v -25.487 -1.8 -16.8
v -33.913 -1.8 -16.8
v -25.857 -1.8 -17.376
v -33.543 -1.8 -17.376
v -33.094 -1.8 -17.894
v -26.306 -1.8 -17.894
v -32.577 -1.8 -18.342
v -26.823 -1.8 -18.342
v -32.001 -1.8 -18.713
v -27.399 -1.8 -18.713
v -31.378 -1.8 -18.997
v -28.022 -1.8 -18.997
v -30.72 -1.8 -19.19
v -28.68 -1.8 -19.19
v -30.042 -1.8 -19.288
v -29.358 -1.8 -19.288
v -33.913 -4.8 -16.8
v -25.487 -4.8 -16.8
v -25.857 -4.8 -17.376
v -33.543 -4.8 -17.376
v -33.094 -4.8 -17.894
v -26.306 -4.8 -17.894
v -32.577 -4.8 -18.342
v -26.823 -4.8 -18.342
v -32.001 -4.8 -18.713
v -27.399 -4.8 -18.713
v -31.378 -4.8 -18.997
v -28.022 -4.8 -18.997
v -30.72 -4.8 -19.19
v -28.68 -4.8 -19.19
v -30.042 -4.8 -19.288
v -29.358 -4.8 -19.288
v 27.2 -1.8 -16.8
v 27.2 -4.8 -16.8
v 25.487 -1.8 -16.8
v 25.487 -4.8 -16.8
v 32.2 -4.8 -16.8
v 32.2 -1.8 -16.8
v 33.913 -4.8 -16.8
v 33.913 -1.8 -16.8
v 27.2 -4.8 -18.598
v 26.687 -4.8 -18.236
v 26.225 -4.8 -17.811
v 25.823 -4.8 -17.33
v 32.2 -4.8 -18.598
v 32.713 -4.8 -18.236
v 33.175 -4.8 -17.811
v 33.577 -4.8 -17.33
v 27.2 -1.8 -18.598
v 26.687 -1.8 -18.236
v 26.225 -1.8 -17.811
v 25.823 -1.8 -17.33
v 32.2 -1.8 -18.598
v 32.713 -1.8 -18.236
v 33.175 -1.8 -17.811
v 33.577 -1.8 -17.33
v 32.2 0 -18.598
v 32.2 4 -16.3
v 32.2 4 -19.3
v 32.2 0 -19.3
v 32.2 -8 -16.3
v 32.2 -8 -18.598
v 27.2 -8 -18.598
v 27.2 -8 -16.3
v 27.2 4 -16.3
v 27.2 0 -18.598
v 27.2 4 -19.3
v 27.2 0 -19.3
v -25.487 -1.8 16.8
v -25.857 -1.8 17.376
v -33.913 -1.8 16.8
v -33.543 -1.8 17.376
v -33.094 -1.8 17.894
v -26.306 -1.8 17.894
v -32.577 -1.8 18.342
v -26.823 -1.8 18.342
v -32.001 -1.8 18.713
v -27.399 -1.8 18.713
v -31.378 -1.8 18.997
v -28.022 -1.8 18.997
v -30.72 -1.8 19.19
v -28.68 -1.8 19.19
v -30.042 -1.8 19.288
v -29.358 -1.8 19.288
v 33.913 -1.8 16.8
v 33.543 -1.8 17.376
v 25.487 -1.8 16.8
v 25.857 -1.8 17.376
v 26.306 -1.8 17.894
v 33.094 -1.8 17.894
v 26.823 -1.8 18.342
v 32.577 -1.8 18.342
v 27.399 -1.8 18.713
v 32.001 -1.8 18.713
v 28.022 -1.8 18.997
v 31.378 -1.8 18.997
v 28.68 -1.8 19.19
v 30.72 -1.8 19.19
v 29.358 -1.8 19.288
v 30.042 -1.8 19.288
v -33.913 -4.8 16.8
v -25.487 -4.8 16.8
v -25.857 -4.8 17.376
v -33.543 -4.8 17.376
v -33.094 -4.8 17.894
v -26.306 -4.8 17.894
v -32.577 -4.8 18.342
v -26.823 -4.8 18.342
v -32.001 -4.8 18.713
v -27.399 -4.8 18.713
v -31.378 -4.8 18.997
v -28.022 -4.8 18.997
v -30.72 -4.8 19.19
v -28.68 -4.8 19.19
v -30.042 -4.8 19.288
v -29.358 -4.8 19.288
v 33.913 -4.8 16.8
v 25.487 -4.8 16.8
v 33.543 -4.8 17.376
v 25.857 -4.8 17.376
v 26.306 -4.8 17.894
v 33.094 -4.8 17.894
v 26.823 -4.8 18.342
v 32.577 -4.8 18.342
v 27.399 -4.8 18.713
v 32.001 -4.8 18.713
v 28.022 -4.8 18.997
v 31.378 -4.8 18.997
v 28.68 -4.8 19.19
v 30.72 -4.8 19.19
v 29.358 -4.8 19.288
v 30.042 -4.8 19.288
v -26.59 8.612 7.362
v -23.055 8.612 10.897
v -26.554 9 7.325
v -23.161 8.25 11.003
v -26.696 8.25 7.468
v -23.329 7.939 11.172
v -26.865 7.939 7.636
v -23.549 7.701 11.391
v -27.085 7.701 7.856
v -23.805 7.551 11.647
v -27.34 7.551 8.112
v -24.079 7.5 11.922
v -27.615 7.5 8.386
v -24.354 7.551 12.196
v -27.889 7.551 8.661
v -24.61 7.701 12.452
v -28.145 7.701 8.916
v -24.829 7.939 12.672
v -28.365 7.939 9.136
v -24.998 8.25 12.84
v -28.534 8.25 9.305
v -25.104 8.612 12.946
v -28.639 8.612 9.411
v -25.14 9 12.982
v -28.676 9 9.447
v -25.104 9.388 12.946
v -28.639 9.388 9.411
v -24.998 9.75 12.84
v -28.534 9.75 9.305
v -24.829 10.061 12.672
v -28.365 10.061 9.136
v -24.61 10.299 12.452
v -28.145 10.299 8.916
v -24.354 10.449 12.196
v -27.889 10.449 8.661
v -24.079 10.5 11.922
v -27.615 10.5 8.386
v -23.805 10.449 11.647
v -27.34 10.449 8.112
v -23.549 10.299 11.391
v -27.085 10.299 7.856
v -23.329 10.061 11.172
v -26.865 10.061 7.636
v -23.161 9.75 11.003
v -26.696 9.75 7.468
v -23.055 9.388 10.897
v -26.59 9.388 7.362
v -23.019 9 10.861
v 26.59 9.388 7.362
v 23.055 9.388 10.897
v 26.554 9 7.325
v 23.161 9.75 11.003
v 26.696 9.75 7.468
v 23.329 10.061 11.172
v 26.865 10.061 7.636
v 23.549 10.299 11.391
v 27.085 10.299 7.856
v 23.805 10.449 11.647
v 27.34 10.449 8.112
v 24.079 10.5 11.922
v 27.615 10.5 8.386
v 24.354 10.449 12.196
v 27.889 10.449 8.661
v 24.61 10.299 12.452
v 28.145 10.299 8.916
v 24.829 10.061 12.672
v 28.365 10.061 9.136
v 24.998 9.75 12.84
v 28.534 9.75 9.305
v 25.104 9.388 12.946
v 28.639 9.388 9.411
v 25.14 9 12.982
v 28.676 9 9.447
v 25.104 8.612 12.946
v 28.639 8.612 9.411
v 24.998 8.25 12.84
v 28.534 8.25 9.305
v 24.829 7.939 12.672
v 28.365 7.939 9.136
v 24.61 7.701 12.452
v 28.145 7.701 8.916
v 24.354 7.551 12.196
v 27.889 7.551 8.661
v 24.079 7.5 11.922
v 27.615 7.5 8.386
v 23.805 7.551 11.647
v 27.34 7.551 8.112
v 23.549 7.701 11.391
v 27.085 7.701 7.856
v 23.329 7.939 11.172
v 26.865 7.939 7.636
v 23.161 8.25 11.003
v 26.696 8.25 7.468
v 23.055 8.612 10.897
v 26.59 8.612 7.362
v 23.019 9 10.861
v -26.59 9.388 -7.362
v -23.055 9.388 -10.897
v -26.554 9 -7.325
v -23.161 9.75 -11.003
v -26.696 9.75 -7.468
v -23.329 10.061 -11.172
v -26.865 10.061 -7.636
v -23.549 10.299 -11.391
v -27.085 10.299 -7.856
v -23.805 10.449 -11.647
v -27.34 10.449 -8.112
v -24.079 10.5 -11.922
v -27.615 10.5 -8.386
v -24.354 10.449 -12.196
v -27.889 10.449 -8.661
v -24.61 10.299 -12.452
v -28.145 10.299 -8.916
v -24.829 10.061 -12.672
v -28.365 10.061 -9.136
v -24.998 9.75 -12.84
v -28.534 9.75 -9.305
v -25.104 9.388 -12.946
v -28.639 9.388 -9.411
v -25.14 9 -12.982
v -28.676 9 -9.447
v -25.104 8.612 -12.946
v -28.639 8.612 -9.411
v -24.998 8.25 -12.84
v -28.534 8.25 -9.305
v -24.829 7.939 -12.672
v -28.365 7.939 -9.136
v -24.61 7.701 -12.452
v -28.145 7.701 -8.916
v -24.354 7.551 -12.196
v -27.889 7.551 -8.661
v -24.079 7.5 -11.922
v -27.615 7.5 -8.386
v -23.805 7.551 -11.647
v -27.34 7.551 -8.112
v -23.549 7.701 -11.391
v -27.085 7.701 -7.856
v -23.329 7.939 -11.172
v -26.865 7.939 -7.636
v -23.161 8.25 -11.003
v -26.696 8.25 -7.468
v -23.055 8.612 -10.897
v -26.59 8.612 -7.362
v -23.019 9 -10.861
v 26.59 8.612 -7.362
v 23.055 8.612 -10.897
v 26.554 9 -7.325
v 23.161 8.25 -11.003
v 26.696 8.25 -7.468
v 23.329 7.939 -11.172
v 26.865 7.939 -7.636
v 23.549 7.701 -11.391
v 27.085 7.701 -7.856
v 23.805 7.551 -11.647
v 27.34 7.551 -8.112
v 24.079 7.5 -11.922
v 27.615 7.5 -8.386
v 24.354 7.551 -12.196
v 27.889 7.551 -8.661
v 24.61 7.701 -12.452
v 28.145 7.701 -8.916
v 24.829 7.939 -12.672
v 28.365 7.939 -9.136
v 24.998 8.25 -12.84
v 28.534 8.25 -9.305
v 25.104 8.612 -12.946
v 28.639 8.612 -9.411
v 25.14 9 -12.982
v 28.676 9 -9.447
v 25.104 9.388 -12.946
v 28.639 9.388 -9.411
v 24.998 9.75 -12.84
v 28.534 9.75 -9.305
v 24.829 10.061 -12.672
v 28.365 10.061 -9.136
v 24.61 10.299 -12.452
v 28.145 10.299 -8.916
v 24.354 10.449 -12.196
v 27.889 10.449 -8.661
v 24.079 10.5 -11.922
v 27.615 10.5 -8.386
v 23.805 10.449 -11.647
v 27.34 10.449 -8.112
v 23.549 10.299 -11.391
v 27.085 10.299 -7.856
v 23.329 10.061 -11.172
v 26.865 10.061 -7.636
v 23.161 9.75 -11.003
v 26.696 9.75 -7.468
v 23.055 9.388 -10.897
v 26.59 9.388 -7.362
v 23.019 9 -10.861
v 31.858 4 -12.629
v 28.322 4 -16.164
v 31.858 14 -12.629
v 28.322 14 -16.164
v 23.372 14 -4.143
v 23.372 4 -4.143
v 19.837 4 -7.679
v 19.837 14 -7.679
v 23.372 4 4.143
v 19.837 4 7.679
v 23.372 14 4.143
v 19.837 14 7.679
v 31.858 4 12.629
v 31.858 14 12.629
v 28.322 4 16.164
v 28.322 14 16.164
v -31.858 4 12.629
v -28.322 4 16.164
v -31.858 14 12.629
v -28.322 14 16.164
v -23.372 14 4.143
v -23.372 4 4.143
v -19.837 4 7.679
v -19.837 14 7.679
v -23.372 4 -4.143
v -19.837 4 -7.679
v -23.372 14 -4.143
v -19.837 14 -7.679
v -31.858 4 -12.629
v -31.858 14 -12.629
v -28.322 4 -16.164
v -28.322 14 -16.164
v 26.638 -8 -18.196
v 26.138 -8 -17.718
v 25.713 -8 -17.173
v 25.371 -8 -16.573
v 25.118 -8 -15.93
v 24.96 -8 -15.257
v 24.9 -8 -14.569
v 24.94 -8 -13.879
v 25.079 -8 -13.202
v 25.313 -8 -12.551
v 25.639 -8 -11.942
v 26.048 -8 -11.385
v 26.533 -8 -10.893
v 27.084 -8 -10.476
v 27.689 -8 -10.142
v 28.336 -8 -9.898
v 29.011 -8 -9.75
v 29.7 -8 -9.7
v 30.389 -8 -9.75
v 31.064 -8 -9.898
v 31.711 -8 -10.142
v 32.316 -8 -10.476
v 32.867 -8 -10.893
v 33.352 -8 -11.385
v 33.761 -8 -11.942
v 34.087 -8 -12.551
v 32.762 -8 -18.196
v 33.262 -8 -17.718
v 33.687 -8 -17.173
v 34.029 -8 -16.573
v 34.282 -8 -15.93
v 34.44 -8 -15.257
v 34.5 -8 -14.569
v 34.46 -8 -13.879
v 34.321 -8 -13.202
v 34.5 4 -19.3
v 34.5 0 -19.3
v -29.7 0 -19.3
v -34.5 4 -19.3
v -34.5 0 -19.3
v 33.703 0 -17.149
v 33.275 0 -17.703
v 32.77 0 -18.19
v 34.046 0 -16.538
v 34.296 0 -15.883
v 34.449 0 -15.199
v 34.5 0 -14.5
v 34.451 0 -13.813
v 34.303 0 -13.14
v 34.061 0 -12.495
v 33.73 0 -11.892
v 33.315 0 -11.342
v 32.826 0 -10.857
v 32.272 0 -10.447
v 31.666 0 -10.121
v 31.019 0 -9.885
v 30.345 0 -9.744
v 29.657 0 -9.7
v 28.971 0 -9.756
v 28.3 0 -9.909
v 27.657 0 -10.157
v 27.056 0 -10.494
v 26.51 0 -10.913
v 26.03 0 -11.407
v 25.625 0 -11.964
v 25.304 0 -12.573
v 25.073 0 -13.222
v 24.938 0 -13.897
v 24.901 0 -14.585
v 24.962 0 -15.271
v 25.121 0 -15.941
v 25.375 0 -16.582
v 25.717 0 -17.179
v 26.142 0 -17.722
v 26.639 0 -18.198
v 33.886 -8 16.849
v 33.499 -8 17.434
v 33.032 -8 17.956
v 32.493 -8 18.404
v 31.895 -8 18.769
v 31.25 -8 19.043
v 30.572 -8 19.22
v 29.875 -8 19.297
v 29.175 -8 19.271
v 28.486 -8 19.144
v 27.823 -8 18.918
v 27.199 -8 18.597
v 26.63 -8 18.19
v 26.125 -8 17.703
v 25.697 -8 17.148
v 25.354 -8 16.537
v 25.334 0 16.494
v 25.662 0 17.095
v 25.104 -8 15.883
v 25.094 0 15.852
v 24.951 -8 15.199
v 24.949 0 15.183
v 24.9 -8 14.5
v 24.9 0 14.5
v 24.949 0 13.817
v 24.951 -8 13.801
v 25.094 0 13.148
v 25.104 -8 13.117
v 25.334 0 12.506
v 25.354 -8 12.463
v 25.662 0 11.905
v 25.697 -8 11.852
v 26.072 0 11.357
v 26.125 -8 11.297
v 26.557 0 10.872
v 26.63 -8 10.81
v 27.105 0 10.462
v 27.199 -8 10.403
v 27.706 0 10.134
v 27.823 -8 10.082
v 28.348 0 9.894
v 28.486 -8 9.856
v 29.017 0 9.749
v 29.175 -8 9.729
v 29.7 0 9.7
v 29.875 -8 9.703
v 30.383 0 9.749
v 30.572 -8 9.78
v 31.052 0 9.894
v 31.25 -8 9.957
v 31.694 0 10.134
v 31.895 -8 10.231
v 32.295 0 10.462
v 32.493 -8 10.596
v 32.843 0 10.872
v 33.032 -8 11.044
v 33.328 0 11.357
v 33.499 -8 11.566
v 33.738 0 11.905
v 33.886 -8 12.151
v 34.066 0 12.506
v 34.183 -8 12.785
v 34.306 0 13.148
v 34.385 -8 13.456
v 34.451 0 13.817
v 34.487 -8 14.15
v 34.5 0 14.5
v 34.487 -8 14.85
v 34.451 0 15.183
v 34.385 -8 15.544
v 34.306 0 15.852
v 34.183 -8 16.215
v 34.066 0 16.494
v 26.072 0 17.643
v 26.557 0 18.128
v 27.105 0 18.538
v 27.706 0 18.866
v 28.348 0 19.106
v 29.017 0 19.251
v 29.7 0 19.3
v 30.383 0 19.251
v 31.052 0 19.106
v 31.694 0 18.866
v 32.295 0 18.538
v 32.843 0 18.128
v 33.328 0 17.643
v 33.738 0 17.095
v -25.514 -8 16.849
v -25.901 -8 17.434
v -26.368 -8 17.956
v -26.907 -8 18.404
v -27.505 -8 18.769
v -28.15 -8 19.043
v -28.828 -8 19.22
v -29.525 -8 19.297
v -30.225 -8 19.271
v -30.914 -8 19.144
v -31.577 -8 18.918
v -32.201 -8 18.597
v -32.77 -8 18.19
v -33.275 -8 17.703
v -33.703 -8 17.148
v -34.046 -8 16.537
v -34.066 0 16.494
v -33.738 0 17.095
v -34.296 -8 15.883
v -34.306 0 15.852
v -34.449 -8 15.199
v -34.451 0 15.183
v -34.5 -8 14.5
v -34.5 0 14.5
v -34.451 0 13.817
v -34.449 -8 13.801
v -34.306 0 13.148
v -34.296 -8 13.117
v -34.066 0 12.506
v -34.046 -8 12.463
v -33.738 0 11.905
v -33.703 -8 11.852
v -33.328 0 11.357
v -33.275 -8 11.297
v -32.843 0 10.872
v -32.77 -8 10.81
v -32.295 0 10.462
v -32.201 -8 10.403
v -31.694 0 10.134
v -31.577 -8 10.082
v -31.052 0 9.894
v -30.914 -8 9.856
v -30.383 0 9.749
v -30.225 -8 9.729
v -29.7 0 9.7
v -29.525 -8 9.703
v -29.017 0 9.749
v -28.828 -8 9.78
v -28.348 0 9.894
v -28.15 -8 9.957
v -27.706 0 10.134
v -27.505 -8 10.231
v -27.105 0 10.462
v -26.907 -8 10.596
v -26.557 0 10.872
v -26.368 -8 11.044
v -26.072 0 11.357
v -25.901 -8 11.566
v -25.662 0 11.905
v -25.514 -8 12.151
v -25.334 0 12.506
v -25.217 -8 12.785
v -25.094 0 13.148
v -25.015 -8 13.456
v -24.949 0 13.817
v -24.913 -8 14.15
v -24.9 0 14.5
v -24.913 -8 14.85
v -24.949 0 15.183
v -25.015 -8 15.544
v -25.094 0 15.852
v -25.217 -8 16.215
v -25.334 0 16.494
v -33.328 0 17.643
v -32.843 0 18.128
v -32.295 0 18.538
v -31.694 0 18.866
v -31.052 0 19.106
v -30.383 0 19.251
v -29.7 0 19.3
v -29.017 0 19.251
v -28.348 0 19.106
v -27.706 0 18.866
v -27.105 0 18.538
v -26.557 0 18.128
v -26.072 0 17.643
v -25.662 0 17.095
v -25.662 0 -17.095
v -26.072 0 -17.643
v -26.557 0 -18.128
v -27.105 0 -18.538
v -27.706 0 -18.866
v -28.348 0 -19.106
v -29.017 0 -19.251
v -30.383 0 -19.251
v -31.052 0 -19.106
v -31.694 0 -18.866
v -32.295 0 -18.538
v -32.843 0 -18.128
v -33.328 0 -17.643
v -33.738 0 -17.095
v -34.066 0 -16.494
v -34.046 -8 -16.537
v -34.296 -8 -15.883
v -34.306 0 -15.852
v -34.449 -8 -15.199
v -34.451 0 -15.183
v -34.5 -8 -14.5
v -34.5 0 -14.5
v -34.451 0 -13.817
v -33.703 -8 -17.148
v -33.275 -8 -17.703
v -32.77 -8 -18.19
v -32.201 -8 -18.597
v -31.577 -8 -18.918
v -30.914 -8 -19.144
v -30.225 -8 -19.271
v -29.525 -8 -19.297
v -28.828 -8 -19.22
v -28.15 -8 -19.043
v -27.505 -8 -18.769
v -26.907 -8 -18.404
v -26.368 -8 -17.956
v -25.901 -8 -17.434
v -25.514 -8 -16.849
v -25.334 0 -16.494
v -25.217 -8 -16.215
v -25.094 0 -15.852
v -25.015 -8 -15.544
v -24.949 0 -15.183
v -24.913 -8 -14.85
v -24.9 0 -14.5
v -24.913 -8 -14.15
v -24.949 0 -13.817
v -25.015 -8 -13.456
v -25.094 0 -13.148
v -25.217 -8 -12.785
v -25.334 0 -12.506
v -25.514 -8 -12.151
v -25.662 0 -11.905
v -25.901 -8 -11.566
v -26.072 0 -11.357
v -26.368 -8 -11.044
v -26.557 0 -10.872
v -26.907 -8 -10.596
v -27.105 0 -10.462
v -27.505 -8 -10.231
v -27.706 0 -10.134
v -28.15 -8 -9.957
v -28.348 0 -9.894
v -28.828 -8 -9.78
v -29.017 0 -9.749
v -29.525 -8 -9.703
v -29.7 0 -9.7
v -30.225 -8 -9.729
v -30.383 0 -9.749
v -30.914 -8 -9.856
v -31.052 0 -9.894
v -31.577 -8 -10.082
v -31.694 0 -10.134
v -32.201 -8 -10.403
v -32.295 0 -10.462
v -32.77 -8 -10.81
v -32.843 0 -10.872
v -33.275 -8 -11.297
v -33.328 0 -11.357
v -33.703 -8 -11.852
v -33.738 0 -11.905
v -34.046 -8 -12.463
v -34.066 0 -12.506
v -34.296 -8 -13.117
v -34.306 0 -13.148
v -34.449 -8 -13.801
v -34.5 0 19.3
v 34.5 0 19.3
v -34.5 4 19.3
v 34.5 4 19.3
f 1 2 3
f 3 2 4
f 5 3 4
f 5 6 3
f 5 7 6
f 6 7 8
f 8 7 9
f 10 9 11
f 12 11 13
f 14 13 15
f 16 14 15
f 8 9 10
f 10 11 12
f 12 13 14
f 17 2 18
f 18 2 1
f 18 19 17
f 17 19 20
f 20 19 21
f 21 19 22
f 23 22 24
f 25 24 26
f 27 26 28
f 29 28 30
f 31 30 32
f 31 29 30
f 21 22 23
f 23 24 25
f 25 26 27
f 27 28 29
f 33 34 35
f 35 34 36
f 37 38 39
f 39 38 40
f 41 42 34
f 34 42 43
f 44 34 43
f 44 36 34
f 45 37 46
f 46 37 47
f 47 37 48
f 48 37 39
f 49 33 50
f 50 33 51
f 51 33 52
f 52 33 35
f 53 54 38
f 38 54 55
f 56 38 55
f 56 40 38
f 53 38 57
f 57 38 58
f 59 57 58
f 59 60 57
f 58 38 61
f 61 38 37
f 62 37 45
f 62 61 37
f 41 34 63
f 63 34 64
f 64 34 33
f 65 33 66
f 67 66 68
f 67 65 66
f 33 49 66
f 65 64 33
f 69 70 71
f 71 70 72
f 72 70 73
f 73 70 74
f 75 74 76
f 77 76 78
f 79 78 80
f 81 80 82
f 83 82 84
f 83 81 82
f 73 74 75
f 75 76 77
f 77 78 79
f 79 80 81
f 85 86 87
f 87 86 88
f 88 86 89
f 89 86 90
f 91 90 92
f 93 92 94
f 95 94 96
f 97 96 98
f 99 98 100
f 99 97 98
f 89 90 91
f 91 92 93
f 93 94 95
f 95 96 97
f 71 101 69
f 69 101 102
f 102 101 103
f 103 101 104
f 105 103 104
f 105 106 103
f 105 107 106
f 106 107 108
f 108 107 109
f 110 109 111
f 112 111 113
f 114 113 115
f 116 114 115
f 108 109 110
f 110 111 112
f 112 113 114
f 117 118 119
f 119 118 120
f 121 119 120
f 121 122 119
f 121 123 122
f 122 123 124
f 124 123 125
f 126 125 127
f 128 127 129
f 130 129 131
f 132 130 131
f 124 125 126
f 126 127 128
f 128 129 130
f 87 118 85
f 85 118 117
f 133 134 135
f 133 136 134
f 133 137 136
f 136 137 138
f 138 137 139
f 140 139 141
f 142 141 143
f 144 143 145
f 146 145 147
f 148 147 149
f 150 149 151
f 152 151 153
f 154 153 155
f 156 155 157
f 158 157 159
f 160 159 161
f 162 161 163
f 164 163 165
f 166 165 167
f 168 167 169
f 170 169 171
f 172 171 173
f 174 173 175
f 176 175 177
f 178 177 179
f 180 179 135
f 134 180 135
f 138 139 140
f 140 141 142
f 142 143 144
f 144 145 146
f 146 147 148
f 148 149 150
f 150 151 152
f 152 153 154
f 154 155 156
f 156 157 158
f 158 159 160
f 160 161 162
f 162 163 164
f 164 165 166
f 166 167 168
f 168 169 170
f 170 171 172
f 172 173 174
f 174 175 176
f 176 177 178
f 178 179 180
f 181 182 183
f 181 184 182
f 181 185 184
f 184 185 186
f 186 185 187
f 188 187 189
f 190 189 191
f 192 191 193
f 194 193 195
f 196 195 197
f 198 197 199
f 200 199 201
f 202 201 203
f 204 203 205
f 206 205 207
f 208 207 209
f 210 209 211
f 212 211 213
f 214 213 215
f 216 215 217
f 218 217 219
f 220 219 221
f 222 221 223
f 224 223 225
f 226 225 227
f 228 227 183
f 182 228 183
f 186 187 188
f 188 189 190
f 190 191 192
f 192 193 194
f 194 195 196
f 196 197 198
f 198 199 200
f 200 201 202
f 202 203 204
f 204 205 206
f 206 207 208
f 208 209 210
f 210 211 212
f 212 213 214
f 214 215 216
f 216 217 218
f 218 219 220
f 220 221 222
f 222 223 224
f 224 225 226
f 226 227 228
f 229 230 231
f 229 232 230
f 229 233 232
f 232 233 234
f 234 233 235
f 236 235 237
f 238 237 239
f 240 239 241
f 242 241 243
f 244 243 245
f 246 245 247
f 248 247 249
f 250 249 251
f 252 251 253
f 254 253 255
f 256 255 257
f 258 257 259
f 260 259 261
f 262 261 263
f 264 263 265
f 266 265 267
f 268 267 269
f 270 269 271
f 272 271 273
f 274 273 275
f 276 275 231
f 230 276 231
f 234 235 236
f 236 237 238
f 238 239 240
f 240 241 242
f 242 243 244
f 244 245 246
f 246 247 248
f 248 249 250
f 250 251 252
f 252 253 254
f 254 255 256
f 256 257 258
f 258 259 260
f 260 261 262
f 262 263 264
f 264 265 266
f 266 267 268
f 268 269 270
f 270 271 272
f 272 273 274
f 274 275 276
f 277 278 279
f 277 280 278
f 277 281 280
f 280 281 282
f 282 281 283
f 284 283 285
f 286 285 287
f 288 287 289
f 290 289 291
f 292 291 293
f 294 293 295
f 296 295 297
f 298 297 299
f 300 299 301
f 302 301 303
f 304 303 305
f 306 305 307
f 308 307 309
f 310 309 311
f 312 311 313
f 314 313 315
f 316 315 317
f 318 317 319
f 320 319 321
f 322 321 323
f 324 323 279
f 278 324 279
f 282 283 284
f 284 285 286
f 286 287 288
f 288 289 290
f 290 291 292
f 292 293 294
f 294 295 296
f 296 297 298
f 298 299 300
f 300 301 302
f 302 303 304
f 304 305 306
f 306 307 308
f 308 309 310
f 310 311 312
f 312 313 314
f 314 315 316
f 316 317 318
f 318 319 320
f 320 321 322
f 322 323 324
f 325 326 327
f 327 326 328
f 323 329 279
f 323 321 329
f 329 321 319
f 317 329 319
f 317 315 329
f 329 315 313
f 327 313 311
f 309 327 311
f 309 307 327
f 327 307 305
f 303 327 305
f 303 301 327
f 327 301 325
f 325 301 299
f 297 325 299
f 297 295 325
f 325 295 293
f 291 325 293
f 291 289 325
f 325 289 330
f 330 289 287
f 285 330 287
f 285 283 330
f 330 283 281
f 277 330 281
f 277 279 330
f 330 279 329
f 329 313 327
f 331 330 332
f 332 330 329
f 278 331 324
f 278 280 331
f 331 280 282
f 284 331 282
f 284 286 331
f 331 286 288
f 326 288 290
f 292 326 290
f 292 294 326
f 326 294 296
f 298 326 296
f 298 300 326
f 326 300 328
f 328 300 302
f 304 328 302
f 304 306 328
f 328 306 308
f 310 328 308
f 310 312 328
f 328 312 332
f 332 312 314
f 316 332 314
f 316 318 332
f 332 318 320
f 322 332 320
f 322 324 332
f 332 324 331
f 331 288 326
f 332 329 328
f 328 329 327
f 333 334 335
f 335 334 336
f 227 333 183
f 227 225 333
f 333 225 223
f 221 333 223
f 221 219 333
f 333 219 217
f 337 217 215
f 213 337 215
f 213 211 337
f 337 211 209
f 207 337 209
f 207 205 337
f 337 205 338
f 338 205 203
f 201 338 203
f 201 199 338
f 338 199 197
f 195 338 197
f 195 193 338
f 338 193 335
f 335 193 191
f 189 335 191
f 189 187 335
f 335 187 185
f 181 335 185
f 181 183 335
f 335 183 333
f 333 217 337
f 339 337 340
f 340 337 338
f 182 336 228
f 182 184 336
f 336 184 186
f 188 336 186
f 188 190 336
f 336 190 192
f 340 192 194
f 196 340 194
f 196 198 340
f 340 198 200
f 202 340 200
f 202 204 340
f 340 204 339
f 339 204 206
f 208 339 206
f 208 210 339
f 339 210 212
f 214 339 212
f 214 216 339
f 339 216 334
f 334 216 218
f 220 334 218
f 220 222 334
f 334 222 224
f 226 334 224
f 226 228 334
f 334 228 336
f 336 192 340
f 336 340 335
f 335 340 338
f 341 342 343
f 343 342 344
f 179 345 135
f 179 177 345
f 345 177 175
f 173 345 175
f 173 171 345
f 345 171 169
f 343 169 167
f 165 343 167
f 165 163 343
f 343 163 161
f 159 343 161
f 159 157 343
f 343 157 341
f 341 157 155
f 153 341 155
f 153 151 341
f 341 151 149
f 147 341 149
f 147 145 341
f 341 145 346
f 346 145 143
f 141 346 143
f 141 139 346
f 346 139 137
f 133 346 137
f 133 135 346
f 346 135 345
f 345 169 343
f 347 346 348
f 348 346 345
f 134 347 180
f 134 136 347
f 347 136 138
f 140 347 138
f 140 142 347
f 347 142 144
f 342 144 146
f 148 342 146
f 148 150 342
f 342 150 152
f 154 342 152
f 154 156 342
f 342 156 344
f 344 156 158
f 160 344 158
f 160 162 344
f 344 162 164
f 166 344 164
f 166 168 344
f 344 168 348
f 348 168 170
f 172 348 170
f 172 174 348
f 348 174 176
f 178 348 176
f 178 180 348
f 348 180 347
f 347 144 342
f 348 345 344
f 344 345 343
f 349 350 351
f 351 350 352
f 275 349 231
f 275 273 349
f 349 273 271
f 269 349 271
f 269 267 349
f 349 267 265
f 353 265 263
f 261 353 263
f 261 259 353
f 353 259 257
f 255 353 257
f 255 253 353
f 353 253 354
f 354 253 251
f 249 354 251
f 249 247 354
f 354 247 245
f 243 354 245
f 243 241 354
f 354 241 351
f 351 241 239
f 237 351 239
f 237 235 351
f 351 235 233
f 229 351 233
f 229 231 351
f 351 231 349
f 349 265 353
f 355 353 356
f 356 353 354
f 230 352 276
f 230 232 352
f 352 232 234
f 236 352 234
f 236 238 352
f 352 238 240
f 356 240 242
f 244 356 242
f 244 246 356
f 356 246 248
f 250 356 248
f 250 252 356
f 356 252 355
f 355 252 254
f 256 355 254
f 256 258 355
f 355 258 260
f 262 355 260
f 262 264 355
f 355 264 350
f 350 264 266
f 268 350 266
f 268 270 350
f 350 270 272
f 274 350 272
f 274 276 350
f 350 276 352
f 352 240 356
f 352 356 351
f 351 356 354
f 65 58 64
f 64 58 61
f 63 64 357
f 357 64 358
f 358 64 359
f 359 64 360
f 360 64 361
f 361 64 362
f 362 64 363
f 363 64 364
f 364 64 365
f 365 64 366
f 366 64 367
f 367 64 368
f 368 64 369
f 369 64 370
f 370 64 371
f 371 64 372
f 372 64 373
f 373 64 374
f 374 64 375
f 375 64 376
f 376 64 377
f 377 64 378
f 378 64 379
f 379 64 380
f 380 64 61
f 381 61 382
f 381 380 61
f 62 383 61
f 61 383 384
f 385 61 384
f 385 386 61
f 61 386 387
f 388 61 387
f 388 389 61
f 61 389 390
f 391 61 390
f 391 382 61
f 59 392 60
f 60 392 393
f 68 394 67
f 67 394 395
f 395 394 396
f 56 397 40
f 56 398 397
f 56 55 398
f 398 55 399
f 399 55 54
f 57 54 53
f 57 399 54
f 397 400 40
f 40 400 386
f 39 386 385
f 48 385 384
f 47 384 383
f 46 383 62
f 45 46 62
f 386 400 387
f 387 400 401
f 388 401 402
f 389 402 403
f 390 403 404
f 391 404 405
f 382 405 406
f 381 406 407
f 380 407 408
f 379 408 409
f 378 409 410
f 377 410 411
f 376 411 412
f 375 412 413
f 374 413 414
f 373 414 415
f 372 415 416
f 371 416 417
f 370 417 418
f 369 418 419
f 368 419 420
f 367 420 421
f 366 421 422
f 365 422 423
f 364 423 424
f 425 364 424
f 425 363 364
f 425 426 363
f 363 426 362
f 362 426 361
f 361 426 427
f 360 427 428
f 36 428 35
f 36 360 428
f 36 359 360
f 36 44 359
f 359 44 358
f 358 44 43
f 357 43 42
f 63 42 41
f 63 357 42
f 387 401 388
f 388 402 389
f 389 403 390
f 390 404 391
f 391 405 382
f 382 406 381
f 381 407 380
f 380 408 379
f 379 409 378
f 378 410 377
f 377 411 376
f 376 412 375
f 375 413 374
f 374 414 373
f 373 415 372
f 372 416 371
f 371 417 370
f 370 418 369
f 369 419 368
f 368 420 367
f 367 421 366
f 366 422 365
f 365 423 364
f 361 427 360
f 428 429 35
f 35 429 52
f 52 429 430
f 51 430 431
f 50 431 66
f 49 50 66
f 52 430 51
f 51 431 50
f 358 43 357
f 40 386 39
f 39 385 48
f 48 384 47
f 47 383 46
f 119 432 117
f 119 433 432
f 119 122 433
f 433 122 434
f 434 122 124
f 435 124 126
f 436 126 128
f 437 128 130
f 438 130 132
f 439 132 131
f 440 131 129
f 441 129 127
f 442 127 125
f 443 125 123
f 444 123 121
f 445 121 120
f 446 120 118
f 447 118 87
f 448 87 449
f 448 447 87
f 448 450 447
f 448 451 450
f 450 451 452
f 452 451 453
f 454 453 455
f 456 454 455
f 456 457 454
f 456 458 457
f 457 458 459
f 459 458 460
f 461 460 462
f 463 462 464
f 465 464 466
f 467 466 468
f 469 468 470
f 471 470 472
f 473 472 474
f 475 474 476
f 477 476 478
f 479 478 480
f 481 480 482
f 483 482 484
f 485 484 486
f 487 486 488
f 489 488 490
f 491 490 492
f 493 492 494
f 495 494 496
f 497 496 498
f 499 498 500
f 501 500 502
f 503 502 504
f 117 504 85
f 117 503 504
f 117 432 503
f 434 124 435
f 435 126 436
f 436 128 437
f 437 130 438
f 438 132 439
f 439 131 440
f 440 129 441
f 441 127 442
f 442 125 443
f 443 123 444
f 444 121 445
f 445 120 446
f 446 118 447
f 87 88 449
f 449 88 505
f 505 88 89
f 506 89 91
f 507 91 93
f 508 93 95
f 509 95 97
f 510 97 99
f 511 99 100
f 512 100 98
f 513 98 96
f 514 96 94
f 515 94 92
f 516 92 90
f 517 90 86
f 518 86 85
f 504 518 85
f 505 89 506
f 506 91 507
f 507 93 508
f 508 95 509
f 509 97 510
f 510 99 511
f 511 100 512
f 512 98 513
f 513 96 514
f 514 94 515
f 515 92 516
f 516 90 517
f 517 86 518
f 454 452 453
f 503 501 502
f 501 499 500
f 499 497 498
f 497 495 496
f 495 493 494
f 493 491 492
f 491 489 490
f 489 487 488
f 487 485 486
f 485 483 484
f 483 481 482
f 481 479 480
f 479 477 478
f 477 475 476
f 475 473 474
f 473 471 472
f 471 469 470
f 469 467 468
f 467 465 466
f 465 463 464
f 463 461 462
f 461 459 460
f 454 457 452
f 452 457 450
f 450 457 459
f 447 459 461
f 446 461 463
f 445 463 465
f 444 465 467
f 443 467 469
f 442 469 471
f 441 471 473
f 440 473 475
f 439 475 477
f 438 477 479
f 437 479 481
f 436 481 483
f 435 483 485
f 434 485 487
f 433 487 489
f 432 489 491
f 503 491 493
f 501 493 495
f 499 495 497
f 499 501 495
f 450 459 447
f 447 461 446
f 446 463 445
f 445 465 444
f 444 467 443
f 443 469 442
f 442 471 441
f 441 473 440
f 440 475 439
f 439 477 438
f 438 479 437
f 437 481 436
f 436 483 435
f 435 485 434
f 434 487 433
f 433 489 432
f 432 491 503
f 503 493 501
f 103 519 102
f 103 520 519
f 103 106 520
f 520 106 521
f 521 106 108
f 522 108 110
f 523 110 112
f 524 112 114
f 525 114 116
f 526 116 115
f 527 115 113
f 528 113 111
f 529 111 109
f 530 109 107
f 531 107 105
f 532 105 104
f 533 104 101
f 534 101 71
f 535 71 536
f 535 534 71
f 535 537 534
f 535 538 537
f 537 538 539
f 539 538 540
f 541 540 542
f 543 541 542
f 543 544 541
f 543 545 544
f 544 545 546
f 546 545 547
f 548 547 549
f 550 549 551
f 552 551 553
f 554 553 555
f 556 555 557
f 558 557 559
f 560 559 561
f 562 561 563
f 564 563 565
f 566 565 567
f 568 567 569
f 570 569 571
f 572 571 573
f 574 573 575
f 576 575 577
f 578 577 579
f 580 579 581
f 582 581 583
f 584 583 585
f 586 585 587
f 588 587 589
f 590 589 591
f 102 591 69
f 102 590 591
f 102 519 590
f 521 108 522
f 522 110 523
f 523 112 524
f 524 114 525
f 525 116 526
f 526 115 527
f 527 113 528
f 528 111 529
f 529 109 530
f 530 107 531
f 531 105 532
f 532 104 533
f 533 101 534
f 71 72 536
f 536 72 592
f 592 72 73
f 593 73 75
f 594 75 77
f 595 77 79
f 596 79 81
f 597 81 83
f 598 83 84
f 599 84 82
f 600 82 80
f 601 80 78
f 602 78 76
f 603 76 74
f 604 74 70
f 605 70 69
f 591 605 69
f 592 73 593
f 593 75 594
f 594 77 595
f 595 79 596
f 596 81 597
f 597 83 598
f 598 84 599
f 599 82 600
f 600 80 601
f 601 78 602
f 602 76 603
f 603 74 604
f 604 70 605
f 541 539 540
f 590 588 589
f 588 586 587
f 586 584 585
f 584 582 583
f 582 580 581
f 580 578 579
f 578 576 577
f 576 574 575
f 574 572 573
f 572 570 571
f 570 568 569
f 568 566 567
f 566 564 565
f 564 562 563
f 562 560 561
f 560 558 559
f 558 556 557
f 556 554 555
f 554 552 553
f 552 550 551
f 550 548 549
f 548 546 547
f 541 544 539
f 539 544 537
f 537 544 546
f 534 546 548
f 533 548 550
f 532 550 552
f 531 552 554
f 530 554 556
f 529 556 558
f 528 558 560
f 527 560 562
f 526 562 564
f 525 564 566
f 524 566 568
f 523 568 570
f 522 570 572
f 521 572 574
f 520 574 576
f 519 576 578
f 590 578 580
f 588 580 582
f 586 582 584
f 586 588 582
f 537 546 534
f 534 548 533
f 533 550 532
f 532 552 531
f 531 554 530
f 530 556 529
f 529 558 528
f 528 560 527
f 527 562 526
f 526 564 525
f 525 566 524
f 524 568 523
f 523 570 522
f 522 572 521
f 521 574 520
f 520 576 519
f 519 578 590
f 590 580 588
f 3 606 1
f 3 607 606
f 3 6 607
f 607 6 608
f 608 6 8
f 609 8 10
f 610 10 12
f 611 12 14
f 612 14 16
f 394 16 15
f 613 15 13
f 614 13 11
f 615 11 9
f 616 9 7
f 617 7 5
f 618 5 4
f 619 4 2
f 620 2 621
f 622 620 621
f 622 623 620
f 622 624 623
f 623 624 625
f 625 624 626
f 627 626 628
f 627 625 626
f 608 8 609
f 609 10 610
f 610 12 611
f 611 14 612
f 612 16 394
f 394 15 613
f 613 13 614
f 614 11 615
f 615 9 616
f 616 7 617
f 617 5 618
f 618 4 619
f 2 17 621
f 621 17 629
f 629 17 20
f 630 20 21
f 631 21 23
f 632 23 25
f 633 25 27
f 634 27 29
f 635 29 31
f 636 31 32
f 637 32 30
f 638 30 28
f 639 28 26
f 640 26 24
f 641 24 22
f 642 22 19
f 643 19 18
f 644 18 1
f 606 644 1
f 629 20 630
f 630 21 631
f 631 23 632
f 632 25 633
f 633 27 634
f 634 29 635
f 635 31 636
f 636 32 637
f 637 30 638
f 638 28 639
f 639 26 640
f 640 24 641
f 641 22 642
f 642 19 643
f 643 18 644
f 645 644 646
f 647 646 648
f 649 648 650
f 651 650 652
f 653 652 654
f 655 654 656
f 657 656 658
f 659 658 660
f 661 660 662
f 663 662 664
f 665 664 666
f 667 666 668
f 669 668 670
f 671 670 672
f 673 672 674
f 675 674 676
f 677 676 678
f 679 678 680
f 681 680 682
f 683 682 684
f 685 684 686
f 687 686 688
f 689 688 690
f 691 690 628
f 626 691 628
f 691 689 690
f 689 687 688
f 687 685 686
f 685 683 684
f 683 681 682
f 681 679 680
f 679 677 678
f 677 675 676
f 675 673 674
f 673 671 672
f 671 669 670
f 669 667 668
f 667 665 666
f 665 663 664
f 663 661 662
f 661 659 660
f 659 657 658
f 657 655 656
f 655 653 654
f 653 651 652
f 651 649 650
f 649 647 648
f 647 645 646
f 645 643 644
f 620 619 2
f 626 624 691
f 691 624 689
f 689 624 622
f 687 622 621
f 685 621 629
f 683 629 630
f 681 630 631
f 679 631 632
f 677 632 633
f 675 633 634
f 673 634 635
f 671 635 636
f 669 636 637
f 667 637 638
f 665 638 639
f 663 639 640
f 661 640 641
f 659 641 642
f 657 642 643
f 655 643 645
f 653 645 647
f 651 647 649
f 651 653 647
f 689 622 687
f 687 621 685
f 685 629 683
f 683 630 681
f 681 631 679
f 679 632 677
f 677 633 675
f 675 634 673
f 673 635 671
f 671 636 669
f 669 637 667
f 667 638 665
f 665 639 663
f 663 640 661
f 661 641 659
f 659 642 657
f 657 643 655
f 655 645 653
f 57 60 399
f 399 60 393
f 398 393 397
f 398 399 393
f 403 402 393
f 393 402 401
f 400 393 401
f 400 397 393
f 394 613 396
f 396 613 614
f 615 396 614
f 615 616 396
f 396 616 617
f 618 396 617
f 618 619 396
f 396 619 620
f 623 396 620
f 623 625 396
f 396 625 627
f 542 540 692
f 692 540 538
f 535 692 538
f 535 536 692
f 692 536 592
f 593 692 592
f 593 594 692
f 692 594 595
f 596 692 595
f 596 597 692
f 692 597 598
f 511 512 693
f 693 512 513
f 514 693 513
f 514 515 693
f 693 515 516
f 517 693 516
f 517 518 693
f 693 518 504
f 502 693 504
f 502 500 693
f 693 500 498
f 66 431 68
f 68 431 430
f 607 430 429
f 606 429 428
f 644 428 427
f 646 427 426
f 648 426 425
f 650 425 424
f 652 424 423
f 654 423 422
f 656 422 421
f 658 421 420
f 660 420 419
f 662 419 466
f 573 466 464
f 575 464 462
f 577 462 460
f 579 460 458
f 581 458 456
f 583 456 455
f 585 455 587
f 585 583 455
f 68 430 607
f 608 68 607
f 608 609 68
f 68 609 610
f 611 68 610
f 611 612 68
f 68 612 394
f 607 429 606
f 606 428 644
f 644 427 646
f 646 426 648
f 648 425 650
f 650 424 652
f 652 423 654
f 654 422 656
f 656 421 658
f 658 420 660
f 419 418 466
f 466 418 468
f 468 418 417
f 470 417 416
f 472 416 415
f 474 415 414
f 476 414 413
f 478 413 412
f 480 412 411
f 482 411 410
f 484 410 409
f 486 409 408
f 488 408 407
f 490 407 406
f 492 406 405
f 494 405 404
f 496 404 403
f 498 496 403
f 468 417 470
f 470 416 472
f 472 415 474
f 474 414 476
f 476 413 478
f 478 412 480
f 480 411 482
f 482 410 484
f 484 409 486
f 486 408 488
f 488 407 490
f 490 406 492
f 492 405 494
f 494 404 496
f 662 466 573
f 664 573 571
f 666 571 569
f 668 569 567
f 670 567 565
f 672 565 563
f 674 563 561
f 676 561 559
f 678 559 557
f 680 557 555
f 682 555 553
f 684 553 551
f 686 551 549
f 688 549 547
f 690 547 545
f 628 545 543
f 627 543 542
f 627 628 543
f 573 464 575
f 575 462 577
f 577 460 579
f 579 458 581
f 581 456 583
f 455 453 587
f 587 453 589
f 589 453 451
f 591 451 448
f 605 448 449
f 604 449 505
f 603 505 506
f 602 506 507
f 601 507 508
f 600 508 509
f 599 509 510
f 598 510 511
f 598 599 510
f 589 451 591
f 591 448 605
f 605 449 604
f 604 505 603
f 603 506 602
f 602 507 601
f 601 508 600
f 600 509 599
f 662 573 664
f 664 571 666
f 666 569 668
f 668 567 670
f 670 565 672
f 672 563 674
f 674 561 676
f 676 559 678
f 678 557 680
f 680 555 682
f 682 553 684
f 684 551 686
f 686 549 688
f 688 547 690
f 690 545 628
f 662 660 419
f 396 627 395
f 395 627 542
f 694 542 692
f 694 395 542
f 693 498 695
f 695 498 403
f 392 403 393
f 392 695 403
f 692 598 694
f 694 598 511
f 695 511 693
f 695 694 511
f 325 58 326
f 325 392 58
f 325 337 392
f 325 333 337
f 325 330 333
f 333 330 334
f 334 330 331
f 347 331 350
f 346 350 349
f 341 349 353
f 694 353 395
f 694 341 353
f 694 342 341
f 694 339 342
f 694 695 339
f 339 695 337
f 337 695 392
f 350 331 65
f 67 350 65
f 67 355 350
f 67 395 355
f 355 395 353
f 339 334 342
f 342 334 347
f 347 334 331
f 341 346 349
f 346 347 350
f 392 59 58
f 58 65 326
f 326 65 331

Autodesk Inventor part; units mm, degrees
ref_plane "YZ Plane" through (0, 0, 0) normal (1, 0, 0) x (0, 1, 0)
ref_plane "XZ Plane" through (0, 0, 0) normal (0, 1, 0) x (-1, 0, 0)
ref_plane "XY Plane" through (0, 0, 0) normal (0, 0, 1) x (1, 0, 0)
sketch "草图1" plane through (0, 0, 0) normal (0, 1, 0) x (-1, 0, 0)
  line L0 (34.5, 19.3) -> (-34.5, 19.3)
  line L1 (-34.5, 19.3) -> (-34.5, -19.3)
  line L2 (-34.5, -19.3) -> (34.5, -19.3)
  line L3 (34.5, -19.3) -> (34.5, 19.3)
  circle A0 centre (29.7, 14.5) radius 4.8
  line L4 (48.3, 0) -> (-48.3, 0) projected
  line L5 (0, -27.02) -> (0, 27.02) projected
  circle A1 centre (29.7, -14.5) radius 4.8
  circle A2 centre (-29.7, 14.5) radius 4.8
  circle A3 centre (-29.7, -14.5) radius 4.8
  point P0 (0, 0)
  dimension "d0" = 38.6
  dimension "d1" = 69
  dimension "d2" = 34.5
  dimension "d3" = 19.3
  dimension "d4" = 9.6
extrude "拉伸1" add sketch "草图1" along normal blind 4
extrude "拉伸2" add sketch "草图1" against normal blind 8 contours A0 | A2 | A1 | A3
sketch "草图2" plane through (0, 0, 0) normal (0, 0, 1) x (1, 0, 0)
  line L0 (24.9, -8) -> (34.5, -8) projected
  line L1 (34.5, 0) -> (29.7, 0) projected
  line L2 (29.7, 0) -> (34.5, 0) projected
  line L3 (34.5, 0) -> (34.5, -8) projected
  line L4 (34.5, -4.8) -> (32, -4.8)
  line L5 (32, -4.8) -> (32, -1.8)
  line L6 (32, -1.8) -> (34.5, -1.8)
  line L7 (34.5, -1.8) -> (34.5, -4.8)
  point P0 (0, 0)
  dimension "d9" = 1.8
  dimension "d10" = 3
  dimension "d11" = 2.5
extrude "拉伸3" [suppressed]
mirror "镜像1" [suppressed]
sketch "草图3" plane through (29.7, -8, -14.5) normal (0, -1, 0) x (1, 0, 0)
  arc A0 (2.3, -4.2131) -> (2.3, 4.2131) centre (0, 0) ccw projected
  circle A1 centre (0, 0) radius 4.8 projected
  line L0 (0, 0) -> (0, -4.8)
  line L1 (-2.5, -1.8) -> (2.5, -1.8)
  line L2 (2.5, -1.8) -> (2.5, -4.8)
  line L3 (2.5, -4.8) -> (-2.5, -4.8)
  line L4 (-2.5, -4.8) -> (-2.5, -1.8)
  line L5 (4.8, -4.8) -> (0, -4.8) projected
  point P0 (-29.7, 14.5)
  point P1 (2.4, -4.8)
  dimension "d17" = 2.5
  dimension "d18" = 5
  dimension "d19" = 3
extrude "拉伸4" cut sketch "草图3" against normal through all contours L2 L3 A1 A0 | A0 A1 L0 L1 L2 | L4 L1 L0 A1 | A1 L3 L4
sketch "草图4" plane through (0, 4, 0) normal (0, 1, 0) x (1, 0, 0)
  line L0 (-48.3, 0) -> (48.3, 0) projected
  line L1 (0, 27.02) -> (0, -27.02) projected
  line L2 (28.3221, -16.1643) -> (19.8368, -7.679)
  line L3 (19.8368, -7.679) -> (23.3723, -4.1435)
  line L4 (23.3723, -4.1435) -> (31.8576, -12.6288)
  line L5 (31.8576, -12.6288) -> (28.3221, -16.1643)
  line L6 (34.5, -19.3) -> (17.3206, -2.1206)
  line L7 (-28.3221, -16.1643) -> (-19.8368, -7.679)
  line L8 (-19.8368, -7.679) -> (-23.3723, -4.1435)
  line L9 (-23.3723, -4.1435) -> (-31.8576, -12.6288)
  line L10 (-31.8576, -12.6288) -> (-28.3221, -16.1643)
  line L11 (28.3221, 16.1643) -> (19.8368, 7.679)
  line L12 (19.8368, 7.679) -> (23.3723, 4.1435)
  line L13 (23.3723, 4.1435) -> (31.8576, 12.6288)
  line L14 (31.8576, 12.6288) -> (28.3221, 16.1643)
  line L15 (-28.3221, 16.1643) -> (-19.8368, 7.679)
  line L16 (-23.3723, 4.1435) -> (-31.8576, 12.6288)
  line L17 (-31.8576, 12.6288) -> (-28.3221, 16.1643)
  line L18 (-19.8368, 7.679) -> (-23.3723, 4.1435)
  point P0 (0, 0)
  dimension "d22" = 5
  dimension "d23" = 12
extrude "拉伸5" add sketch "草图4" along normal blind 10
sketch "草图5" plane through (19.8368, 4, -7.679) normal (-0.7071, 0, -0.7071) x (-0.7071, 0, 0.7071)
  line L0 (0, 0) -> (-12, 0) projected
  line L1 (0, 0) -> (0, 10) projected
  line L2 (-12, 10) -> (0, 10) projected
  line L3 (-12, 0) -> (-12, 10) projected
  circle A0 centre (-6, 5) radius 1.5
  line L4 (-12, 10) -> (0, 10) projected
  line L5 (-6, 10) -> (-6, 0)
  point P0 (19.4566, -4)
  dimension "d26" = 3
  dimension "d27" = 5
extrude "拉伸6" cut sketch "草图5" against normal blind 10 contours L5 A0 | A0 L5
mirror "镜像2" about plane through (0, 0, 0) normal (1, 0, 0) of "拉伸6"
mirror "镜像3" about plane through (0, 0, 0) normal (0, 0, 1) of "拉伸6"
mirror "镜像4" about plane through (0, 0, 0) normal (1, 0, 0) of "拉伸6", "镜像3"
sketch "草图6" plane through (0, 0, 0) normal (1, 0, 0) x (0, 1, 0)
  line L0 (-4.8, 16.8) -> (-1.8, 16.8)
  line L1 (-1.8, 16.8) -> (-1.8, 19.3)
  line L2 (-1.8, 19.3) -> (-4.8, 19.3)
  line L3 (-4.8, 19.3) -> (-4.8, 16.8)
  line L4 (0, 19.3) -> (-8.1735, 19.3)
  line L5 (0, 19.3) -> (0, 15.2583)
  point P0 (0, 0)
  point P1 (-3.3, 19.3)
  dimension "d30" = 3
  dimension "d31" = 2.5
  dimension "d32" = 1.8
extrude "拉伸7" cut sketch "草图6" along normal through all both and the other way through all
mirror "镜像5" about plane through (0, 0, 0) normal (0, 0, 1) of "拉伸7"
properties part number "landframe"
